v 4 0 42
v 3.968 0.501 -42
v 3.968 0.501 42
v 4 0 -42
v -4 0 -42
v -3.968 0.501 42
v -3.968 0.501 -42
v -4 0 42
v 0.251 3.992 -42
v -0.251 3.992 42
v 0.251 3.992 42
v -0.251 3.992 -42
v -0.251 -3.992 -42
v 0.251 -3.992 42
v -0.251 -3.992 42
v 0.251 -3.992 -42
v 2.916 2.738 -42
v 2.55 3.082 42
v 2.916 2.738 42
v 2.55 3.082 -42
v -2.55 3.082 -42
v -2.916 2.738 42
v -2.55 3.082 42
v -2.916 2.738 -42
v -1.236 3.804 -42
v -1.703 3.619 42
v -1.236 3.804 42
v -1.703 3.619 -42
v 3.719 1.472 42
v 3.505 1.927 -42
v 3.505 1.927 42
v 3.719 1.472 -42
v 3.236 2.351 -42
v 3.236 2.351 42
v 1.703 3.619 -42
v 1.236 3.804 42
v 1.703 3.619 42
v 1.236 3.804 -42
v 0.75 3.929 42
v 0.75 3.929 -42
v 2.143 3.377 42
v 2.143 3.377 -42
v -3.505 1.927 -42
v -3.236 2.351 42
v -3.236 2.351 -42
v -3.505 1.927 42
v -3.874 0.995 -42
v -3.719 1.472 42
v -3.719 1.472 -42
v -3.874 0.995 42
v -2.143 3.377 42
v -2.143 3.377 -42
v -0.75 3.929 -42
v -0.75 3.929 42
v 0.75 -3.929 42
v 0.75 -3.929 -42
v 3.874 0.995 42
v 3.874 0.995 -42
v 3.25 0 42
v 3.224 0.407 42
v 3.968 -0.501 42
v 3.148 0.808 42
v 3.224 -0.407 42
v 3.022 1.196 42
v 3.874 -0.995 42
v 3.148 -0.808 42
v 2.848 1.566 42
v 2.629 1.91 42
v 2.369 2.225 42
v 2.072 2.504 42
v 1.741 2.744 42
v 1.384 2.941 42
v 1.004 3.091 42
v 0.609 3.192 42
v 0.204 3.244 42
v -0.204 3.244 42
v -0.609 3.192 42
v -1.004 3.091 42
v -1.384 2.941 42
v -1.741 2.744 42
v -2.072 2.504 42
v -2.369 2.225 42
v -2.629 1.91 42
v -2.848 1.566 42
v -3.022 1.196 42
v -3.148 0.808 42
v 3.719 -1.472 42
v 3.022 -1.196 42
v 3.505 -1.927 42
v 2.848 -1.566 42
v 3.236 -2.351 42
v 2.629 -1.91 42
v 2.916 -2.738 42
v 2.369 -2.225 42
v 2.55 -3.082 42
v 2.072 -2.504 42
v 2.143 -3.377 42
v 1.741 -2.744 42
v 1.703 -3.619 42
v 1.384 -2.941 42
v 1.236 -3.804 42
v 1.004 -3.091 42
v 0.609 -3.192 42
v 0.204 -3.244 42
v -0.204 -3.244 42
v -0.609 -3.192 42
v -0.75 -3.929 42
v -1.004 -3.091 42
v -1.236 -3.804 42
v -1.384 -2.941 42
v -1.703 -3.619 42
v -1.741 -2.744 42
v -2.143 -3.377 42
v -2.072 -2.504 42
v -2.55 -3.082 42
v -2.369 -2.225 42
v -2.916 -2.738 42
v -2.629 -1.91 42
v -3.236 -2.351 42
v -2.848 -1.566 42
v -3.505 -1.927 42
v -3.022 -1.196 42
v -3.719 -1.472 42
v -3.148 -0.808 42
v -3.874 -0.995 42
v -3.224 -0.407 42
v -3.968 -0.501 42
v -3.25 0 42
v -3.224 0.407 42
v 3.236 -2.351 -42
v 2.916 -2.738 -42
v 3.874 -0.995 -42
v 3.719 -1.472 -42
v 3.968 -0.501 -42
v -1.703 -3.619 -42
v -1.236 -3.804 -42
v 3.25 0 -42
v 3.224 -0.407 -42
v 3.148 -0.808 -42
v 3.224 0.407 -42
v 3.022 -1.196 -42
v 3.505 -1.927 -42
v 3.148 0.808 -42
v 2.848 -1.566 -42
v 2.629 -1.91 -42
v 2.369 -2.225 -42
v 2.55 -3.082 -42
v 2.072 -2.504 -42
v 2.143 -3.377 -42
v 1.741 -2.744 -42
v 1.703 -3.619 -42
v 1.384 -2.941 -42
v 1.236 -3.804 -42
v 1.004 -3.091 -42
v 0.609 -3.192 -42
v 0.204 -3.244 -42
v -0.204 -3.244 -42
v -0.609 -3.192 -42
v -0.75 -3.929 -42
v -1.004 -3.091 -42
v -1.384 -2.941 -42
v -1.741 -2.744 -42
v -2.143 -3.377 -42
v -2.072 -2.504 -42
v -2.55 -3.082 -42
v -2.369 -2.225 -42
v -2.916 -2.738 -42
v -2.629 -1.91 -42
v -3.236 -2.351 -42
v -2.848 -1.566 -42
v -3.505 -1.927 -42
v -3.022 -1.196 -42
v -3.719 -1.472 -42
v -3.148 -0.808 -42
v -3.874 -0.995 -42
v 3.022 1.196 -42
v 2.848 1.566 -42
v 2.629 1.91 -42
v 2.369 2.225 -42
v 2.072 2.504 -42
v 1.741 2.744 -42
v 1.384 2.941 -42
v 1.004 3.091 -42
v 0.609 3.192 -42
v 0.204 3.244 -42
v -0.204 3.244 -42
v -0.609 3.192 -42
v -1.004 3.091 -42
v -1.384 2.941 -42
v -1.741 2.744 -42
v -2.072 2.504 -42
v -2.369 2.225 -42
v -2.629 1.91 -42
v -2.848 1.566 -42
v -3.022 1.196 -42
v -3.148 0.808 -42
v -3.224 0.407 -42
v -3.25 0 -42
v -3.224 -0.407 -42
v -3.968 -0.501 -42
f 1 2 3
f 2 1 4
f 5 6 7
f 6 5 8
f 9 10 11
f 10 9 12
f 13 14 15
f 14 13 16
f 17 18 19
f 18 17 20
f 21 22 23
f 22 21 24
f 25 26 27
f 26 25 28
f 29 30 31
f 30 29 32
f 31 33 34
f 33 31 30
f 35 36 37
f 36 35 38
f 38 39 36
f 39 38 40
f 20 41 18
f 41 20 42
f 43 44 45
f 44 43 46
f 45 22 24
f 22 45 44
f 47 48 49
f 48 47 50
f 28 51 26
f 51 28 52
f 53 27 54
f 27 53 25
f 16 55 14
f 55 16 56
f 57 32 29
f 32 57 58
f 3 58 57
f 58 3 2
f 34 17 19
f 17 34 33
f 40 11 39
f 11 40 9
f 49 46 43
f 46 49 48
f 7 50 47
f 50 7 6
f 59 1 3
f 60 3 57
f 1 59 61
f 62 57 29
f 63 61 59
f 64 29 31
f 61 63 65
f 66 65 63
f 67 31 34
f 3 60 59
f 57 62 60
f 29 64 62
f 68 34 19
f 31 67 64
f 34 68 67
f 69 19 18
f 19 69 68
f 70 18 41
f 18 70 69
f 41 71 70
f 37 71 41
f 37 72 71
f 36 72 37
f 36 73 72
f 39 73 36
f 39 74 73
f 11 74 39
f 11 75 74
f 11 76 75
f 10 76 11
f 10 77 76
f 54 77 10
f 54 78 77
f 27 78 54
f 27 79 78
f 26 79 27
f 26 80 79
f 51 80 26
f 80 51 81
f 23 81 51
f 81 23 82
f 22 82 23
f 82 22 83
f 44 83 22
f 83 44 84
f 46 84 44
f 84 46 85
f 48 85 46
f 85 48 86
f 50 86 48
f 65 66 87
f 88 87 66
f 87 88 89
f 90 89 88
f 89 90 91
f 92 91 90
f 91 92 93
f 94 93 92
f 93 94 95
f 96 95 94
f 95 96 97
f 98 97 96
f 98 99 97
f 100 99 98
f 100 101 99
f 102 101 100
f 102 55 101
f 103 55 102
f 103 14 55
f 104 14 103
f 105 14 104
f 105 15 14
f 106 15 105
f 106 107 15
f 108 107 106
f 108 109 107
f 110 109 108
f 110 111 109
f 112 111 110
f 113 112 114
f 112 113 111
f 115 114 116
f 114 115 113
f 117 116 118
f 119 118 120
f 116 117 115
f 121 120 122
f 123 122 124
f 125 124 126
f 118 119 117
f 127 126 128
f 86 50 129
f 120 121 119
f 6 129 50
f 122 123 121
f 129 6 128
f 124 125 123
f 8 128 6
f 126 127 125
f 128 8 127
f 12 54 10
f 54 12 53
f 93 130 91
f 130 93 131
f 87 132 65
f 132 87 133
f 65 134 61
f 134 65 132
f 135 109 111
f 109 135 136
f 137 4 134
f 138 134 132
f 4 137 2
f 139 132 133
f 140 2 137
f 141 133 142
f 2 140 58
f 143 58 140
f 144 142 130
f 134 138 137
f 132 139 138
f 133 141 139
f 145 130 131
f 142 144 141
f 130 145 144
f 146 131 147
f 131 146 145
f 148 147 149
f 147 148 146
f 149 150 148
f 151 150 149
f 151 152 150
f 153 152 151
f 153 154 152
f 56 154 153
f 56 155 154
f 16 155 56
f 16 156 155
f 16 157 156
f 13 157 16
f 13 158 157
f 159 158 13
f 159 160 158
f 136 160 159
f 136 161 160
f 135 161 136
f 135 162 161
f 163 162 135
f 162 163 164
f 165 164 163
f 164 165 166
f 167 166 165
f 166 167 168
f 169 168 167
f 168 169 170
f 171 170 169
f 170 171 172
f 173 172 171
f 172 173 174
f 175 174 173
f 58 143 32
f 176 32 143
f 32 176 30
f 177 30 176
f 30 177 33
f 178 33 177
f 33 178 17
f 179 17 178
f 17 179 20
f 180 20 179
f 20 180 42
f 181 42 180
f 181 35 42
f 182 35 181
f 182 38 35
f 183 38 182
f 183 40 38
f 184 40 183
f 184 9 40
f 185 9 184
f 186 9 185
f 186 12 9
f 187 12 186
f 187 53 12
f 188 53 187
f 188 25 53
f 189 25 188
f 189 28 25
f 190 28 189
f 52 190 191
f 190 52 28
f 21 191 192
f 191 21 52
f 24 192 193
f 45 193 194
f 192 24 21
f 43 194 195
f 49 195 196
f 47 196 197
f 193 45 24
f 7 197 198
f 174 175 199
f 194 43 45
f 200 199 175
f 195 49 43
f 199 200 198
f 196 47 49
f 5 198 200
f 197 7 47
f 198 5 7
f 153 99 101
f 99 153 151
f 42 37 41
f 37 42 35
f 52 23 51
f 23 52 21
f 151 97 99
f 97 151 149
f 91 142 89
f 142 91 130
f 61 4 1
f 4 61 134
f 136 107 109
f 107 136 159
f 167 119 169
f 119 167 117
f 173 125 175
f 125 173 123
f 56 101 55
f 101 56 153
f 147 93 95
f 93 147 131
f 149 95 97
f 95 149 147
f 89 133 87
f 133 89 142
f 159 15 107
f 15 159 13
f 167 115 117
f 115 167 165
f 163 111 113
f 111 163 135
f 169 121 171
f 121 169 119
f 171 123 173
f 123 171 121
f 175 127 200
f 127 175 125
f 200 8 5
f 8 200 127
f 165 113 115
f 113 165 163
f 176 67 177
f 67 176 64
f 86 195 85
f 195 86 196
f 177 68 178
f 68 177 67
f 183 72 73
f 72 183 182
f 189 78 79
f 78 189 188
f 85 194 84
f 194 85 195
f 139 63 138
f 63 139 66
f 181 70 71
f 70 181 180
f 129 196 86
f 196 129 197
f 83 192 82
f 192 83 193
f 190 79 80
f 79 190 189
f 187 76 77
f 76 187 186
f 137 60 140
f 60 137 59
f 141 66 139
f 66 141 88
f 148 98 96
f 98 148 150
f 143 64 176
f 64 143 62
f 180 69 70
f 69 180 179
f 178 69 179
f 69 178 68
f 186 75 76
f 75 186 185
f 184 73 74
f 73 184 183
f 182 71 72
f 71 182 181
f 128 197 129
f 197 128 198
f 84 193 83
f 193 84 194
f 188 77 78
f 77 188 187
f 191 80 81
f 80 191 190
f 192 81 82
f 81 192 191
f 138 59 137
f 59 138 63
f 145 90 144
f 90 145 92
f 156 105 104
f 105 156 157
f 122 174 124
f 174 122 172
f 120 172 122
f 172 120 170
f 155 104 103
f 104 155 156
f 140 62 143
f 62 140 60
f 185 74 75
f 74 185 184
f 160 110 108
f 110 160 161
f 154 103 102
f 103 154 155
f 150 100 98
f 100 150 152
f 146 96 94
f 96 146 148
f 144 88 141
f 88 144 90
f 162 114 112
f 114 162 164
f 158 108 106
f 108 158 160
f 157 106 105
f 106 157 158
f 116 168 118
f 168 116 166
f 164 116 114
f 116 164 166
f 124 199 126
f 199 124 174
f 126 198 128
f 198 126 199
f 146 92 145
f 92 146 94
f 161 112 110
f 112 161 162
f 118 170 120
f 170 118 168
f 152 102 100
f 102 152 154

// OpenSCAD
$fn = 50;


difference() {
	union() {
		translate(v = [0, 0, -42.0000000000]) {
			cylinder(h = 84, r = 4.0000000000);
		}
	}
	union() {
		translate(v = [0, 0, -100.0000000000]) {
			cylinder(h = 200, r = 3.2500000000);
		}
	}
}
